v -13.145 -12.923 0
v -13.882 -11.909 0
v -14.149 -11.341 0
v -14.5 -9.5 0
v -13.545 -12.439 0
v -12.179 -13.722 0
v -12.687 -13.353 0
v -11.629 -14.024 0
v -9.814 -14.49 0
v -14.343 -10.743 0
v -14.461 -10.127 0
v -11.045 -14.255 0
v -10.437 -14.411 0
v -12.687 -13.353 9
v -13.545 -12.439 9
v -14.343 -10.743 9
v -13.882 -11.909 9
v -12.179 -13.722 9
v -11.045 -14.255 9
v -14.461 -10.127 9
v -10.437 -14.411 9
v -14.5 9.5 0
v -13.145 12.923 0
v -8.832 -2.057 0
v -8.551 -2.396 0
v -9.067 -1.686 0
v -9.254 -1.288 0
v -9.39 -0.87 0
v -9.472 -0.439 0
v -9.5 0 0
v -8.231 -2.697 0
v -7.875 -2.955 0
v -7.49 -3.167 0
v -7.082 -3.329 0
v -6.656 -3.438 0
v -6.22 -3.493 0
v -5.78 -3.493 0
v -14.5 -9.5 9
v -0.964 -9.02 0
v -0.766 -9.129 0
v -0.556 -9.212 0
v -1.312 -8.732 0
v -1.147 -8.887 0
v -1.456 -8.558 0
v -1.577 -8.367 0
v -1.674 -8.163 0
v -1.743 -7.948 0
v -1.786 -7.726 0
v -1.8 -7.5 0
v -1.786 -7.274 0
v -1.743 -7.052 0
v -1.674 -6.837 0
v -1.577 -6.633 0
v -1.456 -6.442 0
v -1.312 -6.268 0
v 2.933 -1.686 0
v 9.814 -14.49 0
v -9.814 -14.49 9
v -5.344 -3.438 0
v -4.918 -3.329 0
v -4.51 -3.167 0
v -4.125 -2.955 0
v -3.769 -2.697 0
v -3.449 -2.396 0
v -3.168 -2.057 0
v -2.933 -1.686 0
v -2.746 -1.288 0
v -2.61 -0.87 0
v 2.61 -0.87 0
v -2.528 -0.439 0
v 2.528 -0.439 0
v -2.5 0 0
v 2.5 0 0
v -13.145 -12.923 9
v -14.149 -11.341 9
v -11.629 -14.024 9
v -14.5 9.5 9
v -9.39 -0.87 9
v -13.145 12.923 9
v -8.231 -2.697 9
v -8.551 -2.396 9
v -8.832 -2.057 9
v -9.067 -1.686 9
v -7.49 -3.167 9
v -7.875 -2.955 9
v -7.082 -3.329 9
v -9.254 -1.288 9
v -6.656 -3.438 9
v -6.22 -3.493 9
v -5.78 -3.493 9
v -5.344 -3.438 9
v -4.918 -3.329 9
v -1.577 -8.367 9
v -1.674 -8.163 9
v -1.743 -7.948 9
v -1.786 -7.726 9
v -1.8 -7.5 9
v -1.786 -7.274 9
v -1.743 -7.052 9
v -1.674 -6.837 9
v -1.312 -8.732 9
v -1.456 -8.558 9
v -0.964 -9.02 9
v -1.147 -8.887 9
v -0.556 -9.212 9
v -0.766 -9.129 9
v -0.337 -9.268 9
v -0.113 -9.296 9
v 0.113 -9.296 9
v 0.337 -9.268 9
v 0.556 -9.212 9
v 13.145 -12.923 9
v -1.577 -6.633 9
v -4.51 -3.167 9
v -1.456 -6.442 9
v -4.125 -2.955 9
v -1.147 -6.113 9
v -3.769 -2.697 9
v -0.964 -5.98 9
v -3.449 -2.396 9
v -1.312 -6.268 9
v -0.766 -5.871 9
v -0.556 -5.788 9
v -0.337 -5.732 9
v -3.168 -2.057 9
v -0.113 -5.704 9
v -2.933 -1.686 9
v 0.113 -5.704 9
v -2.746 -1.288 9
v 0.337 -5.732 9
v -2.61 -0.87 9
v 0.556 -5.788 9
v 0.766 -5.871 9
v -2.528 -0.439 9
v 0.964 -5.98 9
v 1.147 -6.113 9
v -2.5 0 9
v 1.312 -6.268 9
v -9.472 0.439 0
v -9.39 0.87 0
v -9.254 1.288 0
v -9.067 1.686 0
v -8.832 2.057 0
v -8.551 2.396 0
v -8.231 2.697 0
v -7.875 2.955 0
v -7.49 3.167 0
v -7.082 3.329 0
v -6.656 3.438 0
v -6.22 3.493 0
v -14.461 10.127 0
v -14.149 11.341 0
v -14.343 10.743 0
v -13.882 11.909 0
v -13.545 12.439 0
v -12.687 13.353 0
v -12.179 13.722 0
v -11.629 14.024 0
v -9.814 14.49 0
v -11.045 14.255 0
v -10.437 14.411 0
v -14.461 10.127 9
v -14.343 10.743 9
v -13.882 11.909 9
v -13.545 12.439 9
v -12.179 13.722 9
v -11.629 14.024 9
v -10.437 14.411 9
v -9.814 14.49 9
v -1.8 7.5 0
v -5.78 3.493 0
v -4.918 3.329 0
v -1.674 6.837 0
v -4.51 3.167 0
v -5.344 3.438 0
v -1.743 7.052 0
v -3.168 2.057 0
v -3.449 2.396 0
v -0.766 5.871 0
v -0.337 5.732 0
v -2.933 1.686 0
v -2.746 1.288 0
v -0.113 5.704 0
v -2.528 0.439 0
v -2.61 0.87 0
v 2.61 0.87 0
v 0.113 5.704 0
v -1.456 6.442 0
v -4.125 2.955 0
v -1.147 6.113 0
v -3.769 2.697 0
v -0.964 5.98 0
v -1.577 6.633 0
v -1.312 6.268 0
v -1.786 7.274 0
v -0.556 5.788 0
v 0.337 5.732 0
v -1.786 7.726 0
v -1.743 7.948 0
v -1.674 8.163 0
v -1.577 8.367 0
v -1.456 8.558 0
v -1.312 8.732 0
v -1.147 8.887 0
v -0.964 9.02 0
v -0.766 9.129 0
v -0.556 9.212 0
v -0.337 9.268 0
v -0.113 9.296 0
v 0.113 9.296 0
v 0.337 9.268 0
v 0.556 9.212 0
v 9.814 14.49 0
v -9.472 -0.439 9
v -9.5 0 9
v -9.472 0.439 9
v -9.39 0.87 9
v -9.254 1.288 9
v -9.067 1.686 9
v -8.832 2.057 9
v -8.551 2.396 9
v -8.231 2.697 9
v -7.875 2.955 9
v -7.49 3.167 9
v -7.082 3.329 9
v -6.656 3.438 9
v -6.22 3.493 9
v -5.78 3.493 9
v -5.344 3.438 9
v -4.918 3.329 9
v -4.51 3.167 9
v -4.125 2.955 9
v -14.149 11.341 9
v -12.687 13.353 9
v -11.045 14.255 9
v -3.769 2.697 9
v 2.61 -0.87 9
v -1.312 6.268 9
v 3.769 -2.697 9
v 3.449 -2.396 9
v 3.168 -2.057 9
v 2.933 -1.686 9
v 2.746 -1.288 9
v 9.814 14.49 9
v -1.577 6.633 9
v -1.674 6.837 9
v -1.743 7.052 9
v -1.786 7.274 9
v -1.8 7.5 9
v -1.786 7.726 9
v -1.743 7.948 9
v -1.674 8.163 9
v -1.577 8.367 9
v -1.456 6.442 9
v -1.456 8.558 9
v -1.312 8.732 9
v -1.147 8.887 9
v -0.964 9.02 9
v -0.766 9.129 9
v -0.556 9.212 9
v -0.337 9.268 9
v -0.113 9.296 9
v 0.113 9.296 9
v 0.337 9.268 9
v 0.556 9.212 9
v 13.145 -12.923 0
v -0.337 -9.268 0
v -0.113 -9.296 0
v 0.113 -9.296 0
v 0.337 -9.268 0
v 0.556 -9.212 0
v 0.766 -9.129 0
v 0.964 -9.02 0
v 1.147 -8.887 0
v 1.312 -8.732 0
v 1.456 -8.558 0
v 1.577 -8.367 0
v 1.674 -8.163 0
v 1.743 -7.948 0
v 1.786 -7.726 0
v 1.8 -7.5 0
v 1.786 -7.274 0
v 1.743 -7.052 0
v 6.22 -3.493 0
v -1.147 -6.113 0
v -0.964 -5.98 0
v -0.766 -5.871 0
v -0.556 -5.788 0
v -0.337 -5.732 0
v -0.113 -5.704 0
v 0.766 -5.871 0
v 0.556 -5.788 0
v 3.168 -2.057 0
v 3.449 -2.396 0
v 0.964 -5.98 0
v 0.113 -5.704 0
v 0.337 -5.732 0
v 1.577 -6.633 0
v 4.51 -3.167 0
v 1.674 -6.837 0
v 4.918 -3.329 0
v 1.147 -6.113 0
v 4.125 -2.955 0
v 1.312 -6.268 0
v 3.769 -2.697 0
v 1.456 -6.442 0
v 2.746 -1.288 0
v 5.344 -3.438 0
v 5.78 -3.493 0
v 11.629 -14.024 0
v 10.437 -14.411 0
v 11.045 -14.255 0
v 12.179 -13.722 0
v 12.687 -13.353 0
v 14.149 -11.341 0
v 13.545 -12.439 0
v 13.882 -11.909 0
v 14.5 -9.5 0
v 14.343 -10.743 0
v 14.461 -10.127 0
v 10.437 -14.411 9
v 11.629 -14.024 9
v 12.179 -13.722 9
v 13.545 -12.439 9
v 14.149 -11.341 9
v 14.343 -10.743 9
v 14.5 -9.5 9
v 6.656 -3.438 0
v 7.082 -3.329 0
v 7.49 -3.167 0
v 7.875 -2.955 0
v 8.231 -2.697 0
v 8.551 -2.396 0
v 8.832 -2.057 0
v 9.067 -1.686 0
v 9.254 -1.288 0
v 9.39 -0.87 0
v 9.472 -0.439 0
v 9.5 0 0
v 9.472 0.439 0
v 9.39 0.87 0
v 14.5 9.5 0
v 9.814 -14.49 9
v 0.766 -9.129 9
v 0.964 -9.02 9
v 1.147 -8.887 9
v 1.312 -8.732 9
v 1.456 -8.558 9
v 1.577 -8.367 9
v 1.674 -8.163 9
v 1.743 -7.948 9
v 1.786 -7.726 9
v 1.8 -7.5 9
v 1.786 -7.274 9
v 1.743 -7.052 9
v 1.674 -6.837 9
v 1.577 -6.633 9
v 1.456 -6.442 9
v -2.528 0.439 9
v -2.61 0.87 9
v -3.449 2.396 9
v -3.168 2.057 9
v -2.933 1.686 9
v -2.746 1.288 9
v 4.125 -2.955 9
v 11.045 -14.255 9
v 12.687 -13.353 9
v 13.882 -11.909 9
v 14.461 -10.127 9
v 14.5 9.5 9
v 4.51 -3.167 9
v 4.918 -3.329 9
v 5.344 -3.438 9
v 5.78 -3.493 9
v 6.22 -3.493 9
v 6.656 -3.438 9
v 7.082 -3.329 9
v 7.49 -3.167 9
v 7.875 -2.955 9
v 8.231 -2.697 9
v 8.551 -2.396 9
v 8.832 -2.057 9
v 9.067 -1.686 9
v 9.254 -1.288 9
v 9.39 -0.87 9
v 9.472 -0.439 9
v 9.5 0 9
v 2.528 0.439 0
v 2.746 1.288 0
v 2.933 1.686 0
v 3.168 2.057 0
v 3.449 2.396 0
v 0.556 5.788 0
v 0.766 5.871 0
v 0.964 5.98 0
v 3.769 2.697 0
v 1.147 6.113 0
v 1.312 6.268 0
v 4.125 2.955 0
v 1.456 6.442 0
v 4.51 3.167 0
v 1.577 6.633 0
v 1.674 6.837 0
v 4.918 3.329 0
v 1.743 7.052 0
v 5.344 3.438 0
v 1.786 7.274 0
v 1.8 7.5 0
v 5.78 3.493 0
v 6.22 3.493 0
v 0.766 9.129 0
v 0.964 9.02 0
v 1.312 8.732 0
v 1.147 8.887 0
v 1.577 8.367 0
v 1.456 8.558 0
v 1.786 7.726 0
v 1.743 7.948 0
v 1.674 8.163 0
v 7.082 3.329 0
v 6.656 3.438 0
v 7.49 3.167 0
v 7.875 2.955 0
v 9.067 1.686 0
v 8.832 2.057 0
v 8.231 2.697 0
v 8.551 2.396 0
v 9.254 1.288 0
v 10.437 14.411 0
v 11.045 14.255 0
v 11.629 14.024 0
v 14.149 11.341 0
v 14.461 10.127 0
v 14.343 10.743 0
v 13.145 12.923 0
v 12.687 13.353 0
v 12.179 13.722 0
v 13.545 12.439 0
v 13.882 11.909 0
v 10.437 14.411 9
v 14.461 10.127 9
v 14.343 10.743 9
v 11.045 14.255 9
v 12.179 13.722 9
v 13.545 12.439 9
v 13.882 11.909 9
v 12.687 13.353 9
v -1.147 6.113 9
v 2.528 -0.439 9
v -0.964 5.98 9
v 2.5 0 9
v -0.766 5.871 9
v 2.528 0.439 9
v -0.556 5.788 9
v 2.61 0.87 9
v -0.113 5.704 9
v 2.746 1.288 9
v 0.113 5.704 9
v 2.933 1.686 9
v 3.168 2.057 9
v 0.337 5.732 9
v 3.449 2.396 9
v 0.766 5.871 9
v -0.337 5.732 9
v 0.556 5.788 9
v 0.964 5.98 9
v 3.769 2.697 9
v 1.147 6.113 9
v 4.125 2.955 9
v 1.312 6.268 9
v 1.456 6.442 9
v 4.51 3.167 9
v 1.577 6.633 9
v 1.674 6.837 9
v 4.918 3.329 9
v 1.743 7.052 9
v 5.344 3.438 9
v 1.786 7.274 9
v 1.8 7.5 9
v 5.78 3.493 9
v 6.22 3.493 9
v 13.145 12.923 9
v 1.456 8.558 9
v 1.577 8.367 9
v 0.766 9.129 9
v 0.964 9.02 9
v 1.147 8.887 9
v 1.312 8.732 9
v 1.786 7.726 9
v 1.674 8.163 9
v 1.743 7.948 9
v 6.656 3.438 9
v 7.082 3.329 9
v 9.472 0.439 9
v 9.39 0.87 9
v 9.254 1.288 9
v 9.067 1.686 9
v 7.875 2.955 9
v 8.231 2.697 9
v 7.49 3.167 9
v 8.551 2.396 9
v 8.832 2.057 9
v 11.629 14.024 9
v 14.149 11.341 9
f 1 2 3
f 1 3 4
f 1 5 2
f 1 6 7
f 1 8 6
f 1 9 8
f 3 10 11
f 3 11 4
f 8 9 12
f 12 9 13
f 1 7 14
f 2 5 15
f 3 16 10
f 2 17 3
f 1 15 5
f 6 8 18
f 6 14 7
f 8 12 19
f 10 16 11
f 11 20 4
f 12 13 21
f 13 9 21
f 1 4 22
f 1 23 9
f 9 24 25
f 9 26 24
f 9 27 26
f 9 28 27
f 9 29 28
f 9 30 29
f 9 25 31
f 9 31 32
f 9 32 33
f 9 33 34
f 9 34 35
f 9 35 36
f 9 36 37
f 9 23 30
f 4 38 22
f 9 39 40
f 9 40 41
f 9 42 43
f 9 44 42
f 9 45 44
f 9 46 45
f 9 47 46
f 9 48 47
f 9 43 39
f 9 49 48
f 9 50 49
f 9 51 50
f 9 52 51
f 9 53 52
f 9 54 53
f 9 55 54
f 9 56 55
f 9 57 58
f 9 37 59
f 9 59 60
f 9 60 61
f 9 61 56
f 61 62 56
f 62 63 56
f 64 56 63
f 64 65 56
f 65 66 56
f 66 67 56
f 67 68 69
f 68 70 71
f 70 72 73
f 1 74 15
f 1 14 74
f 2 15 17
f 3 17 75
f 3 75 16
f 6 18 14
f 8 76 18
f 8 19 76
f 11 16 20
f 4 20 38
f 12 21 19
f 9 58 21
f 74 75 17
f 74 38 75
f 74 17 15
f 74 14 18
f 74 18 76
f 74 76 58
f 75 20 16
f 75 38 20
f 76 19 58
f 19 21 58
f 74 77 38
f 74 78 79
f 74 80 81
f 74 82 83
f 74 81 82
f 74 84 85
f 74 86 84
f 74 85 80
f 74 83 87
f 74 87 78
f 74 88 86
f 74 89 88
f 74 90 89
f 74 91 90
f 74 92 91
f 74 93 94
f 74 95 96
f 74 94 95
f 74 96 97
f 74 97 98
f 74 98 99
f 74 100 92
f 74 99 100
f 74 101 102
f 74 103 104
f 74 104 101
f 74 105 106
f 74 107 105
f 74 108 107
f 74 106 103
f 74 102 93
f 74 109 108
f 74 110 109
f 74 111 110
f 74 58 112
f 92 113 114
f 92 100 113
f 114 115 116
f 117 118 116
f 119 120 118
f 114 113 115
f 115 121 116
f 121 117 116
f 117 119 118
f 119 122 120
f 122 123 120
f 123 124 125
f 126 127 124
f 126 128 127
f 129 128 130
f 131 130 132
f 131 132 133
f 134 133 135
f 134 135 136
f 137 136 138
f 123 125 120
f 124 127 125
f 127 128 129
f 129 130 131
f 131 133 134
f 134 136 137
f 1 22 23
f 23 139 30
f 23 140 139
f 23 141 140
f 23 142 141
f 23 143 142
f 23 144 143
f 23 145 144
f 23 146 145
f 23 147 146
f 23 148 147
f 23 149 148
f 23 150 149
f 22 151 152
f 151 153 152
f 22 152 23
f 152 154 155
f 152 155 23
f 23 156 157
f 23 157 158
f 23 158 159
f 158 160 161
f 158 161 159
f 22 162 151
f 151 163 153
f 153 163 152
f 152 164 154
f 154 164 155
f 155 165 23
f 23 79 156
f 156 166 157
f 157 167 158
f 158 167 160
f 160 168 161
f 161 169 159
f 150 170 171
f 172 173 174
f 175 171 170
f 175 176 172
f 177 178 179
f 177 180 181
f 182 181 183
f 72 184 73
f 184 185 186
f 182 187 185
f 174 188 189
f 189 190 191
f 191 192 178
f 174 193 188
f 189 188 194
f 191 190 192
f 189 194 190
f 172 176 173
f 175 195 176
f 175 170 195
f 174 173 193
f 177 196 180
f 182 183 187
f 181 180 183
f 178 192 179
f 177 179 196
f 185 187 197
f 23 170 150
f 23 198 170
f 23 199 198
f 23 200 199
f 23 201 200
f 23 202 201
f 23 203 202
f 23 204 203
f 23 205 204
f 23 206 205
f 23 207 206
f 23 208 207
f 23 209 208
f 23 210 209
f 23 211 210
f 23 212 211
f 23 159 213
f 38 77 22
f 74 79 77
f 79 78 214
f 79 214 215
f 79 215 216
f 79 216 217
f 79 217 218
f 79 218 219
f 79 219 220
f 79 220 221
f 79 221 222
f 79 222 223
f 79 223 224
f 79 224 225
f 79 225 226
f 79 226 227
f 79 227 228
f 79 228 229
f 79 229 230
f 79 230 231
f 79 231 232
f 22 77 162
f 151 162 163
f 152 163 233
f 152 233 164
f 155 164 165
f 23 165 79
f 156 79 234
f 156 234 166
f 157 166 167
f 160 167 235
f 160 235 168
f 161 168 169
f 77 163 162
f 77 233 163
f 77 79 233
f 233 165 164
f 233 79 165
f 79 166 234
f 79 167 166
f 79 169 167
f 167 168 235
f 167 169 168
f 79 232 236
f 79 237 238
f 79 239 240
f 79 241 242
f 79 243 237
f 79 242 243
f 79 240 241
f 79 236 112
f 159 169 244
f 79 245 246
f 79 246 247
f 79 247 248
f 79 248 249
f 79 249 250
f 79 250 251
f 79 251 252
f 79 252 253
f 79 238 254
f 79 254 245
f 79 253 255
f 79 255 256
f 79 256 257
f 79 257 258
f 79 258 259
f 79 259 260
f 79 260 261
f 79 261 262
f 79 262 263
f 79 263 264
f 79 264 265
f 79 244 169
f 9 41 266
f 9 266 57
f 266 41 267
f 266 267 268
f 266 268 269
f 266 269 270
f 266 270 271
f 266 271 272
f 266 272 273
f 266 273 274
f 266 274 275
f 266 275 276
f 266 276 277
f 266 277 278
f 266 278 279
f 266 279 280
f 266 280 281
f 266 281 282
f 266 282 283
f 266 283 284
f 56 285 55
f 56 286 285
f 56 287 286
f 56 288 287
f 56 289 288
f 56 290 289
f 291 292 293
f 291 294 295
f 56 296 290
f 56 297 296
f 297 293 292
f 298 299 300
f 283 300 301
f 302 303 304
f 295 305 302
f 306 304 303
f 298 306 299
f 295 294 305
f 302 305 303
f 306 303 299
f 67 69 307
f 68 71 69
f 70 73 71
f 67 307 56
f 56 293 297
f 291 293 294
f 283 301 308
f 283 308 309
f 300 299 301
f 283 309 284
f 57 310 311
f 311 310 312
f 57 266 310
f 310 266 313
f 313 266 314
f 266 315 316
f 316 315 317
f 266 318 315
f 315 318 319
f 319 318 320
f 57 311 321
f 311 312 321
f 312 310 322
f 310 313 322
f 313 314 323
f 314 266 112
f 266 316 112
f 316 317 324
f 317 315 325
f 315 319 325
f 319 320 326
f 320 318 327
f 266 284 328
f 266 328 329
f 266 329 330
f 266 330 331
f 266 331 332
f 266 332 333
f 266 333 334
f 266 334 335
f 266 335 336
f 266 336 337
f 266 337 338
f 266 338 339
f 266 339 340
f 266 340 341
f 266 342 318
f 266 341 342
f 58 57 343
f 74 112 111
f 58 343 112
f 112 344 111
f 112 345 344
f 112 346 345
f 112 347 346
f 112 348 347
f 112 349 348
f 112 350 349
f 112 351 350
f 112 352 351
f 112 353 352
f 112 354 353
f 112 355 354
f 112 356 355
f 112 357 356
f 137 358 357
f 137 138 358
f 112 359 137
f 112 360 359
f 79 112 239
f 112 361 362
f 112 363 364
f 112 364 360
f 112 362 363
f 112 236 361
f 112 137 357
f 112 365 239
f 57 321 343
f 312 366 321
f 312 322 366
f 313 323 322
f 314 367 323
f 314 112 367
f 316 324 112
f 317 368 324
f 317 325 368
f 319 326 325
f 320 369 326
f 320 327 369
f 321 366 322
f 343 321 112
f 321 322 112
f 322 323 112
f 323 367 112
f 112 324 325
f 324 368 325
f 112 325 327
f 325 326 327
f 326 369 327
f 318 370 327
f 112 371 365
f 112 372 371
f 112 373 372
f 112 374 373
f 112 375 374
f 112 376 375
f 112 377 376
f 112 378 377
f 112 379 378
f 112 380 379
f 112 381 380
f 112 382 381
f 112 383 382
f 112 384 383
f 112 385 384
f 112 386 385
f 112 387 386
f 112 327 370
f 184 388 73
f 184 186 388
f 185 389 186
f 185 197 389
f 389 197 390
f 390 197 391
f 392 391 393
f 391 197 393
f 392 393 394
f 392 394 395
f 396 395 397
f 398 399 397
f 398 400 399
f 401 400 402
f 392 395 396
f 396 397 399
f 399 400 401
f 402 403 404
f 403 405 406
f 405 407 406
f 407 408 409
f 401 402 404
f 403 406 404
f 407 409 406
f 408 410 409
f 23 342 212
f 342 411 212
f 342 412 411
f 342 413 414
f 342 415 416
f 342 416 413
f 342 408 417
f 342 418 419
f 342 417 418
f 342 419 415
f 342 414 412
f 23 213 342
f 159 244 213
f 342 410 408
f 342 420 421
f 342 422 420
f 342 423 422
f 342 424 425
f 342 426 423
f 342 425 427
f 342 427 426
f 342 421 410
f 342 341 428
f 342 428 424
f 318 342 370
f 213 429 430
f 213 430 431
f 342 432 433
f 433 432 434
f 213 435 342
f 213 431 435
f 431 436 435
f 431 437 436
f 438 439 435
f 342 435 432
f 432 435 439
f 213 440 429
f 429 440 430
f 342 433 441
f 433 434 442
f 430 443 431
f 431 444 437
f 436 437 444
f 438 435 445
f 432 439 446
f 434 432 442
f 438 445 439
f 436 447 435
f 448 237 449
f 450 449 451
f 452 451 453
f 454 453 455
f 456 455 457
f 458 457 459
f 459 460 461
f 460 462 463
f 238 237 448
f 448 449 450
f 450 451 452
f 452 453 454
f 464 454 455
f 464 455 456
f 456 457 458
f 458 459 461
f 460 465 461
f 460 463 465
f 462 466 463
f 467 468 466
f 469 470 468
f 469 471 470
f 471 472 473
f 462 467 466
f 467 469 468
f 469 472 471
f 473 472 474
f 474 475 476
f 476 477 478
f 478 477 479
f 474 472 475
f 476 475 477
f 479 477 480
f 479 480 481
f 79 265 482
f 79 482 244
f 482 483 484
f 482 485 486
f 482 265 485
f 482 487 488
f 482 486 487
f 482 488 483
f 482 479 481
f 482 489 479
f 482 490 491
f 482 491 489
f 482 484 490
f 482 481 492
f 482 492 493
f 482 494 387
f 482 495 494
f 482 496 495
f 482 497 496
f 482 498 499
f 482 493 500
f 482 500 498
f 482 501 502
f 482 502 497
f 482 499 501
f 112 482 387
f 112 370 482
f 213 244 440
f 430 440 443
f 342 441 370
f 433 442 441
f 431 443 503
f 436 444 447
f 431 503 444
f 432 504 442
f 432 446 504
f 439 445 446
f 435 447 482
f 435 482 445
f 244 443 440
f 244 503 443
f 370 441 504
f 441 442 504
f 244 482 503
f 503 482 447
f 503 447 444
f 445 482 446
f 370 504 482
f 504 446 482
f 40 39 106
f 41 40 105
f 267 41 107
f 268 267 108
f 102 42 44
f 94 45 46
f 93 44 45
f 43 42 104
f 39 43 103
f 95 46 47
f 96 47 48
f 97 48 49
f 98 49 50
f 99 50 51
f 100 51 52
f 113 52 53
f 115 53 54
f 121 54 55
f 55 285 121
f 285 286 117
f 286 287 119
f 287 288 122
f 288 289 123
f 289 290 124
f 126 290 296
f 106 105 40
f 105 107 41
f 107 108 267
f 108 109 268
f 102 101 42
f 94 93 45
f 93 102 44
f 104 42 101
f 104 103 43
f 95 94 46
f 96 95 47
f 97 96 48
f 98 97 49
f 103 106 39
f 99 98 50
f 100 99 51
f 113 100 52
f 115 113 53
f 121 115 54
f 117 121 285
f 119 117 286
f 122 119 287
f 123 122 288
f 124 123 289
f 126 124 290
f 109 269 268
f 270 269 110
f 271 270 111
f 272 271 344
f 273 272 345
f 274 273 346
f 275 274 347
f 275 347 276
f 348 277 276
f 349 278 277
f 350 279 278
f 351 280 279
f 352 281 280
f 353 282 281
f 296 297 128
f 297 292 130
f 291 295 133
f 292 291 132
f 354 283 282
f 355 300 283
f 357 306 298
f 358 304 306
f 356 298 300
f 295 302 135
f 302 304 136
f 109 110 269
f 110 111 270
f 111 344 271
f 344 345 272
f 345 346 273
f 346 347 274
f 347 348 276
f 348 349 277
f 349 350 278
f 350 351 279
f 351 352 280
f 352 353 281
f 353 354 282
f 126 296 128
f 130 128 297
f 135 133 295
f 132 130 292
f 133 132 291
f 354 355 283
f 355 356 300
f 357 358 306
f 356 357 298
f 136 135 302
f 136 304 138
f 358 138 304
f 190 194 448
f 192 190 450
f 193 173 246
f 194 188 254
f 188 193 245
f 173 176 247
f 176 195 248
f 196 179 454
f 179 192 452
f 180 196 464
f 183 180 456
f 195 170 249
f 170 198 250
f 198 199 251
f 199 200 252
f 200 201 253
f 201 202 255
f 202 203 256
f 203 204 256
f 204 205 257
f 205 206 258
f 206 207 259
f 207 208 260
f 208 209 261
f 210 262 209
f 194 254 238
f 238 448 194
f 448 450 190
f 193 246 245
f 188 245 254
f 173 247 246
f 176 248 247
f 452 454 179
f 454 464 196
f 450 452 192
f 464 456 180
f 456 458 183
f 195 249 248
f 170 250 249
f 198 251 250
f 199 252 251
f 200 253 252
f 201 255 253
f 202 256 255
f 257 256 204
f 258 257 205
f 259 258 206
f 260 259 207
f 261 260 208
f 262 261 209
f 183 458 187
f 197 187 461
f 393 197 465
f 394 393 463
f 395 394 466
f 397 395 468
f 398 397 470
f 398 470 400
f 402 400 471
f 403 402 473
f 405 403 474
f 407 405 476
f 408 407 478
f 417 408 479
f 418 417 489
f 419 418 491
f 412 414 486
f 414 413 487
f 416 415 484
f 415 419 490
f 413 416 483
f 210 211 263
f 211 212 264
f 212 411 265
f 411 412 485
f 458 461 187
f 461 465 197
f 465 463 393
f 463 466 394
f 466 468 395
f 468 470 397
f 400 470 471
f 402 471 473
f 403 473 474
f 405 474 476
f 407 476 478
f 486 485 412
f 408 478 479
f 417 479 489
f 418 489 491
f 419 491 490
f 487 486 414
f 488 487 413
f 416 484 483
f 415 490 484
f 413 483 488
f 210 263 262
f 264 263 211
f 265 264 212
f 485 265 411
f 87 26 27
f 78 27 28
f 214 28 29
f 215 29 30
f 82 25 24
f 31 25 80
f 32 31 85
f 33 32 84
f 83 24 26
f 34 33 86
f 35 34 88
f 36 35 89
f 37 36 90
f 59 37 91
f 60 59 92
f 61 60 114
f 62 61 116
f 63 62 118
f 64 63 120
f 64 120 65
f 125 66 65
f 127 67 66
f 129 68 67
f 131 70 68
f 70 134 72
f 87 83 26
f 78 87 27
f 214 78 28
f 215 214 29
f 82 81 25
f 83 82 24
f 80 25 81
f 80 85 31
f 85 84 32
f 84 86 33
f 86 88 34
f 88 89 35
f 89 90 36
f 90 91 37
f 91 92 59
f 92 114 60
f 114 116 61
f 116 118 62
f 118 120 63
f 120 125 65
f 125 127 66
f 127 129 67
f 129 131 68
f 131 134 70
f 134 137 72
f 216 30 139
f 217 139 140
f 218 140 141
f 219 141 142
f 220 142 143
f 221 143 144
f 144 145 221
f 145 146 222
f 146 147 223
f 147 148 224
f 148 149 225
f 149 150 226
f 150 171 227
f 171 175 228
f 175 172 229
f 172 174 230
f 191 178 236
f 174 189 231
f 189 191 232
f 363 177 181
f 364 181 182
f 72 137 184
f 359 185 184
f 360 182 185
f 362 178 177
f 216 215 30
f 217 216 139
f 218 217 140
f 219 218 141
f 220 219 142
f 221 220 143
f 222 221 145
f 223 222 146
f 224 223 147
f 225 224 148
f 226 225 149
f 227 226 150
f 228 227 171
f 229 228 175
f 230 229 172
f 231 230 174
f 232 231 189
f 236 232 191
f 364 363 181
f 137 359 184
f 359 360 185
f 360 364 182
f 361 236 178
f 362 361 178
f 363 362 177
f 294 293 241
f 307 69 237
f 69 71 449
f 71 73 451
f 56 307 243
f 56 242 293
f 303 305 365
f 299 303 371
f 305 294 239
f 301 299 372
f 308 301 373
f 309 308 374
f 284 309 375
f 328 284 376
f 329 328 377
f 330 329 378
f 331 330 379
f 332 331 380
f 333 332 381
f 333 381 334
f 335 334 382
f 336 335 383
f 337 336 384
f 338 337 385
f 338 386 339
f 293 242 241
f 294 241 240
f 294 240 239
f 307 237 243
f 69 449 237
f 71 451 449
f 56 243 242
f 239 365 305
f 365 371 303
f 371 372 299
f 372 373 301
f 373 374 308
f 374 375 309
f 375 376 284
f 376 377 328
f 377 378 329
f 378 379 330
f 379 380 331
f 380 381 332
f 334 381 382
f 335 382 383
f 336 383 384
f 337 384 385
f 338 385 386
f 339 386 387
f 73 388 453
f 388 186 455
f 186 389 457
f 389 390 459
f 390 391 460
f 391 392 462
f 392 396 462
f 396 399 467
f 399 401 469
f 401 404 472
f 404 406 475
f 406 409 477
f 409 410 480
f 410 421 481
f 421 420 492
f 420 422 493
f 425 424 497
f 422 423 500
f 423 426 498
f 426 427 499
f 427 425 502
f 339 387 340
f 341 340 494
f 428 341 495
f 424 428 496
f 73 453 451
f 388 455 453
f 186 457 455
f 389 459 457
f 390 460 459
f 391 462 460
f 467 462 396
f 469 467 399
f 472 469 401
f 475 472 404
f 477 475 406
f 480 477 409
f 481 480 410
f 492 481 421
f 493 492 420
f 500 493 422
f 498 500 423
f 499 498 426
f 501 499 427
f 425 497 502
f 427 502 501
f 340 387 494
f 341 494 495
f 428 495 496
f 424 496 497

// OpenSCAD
$fn = 50;

difference() {
	union() {
		hull() {
			translate(v = [-9.5, 9.5, 0]) {
				cylinder(h = 9, r = 5);
			}
			translate(v = [9.5, 9.5, 0]) {
				cylinder(h = 9, r = 5);
			}
			translate(v = [-9.5, -9.5, 0]) {
				cylinder(h = 9, r = 5);
			}
			translate(v = [9.5, -9.5, 0]) {
				cylinder(h = 9, r = 5);
			}
		}
	}
	union() {
		translate(v = [0.0, -7.5, 0]) {
			cylinder(h = 9, r = 1.8);
		}
		translate(v = [0.0, 7.5, 0]) {
			cylinder(h = 9, r = 1.8);
		}
		translate(v = [-6.0, 0, 0.0]) {
			cylinder(h = 9, r = 3.5);
		}
		translate(v = [6.0, 0, 0.0]) {
			cylinder(h = 9, r = 3.5);
		}
	}
}
